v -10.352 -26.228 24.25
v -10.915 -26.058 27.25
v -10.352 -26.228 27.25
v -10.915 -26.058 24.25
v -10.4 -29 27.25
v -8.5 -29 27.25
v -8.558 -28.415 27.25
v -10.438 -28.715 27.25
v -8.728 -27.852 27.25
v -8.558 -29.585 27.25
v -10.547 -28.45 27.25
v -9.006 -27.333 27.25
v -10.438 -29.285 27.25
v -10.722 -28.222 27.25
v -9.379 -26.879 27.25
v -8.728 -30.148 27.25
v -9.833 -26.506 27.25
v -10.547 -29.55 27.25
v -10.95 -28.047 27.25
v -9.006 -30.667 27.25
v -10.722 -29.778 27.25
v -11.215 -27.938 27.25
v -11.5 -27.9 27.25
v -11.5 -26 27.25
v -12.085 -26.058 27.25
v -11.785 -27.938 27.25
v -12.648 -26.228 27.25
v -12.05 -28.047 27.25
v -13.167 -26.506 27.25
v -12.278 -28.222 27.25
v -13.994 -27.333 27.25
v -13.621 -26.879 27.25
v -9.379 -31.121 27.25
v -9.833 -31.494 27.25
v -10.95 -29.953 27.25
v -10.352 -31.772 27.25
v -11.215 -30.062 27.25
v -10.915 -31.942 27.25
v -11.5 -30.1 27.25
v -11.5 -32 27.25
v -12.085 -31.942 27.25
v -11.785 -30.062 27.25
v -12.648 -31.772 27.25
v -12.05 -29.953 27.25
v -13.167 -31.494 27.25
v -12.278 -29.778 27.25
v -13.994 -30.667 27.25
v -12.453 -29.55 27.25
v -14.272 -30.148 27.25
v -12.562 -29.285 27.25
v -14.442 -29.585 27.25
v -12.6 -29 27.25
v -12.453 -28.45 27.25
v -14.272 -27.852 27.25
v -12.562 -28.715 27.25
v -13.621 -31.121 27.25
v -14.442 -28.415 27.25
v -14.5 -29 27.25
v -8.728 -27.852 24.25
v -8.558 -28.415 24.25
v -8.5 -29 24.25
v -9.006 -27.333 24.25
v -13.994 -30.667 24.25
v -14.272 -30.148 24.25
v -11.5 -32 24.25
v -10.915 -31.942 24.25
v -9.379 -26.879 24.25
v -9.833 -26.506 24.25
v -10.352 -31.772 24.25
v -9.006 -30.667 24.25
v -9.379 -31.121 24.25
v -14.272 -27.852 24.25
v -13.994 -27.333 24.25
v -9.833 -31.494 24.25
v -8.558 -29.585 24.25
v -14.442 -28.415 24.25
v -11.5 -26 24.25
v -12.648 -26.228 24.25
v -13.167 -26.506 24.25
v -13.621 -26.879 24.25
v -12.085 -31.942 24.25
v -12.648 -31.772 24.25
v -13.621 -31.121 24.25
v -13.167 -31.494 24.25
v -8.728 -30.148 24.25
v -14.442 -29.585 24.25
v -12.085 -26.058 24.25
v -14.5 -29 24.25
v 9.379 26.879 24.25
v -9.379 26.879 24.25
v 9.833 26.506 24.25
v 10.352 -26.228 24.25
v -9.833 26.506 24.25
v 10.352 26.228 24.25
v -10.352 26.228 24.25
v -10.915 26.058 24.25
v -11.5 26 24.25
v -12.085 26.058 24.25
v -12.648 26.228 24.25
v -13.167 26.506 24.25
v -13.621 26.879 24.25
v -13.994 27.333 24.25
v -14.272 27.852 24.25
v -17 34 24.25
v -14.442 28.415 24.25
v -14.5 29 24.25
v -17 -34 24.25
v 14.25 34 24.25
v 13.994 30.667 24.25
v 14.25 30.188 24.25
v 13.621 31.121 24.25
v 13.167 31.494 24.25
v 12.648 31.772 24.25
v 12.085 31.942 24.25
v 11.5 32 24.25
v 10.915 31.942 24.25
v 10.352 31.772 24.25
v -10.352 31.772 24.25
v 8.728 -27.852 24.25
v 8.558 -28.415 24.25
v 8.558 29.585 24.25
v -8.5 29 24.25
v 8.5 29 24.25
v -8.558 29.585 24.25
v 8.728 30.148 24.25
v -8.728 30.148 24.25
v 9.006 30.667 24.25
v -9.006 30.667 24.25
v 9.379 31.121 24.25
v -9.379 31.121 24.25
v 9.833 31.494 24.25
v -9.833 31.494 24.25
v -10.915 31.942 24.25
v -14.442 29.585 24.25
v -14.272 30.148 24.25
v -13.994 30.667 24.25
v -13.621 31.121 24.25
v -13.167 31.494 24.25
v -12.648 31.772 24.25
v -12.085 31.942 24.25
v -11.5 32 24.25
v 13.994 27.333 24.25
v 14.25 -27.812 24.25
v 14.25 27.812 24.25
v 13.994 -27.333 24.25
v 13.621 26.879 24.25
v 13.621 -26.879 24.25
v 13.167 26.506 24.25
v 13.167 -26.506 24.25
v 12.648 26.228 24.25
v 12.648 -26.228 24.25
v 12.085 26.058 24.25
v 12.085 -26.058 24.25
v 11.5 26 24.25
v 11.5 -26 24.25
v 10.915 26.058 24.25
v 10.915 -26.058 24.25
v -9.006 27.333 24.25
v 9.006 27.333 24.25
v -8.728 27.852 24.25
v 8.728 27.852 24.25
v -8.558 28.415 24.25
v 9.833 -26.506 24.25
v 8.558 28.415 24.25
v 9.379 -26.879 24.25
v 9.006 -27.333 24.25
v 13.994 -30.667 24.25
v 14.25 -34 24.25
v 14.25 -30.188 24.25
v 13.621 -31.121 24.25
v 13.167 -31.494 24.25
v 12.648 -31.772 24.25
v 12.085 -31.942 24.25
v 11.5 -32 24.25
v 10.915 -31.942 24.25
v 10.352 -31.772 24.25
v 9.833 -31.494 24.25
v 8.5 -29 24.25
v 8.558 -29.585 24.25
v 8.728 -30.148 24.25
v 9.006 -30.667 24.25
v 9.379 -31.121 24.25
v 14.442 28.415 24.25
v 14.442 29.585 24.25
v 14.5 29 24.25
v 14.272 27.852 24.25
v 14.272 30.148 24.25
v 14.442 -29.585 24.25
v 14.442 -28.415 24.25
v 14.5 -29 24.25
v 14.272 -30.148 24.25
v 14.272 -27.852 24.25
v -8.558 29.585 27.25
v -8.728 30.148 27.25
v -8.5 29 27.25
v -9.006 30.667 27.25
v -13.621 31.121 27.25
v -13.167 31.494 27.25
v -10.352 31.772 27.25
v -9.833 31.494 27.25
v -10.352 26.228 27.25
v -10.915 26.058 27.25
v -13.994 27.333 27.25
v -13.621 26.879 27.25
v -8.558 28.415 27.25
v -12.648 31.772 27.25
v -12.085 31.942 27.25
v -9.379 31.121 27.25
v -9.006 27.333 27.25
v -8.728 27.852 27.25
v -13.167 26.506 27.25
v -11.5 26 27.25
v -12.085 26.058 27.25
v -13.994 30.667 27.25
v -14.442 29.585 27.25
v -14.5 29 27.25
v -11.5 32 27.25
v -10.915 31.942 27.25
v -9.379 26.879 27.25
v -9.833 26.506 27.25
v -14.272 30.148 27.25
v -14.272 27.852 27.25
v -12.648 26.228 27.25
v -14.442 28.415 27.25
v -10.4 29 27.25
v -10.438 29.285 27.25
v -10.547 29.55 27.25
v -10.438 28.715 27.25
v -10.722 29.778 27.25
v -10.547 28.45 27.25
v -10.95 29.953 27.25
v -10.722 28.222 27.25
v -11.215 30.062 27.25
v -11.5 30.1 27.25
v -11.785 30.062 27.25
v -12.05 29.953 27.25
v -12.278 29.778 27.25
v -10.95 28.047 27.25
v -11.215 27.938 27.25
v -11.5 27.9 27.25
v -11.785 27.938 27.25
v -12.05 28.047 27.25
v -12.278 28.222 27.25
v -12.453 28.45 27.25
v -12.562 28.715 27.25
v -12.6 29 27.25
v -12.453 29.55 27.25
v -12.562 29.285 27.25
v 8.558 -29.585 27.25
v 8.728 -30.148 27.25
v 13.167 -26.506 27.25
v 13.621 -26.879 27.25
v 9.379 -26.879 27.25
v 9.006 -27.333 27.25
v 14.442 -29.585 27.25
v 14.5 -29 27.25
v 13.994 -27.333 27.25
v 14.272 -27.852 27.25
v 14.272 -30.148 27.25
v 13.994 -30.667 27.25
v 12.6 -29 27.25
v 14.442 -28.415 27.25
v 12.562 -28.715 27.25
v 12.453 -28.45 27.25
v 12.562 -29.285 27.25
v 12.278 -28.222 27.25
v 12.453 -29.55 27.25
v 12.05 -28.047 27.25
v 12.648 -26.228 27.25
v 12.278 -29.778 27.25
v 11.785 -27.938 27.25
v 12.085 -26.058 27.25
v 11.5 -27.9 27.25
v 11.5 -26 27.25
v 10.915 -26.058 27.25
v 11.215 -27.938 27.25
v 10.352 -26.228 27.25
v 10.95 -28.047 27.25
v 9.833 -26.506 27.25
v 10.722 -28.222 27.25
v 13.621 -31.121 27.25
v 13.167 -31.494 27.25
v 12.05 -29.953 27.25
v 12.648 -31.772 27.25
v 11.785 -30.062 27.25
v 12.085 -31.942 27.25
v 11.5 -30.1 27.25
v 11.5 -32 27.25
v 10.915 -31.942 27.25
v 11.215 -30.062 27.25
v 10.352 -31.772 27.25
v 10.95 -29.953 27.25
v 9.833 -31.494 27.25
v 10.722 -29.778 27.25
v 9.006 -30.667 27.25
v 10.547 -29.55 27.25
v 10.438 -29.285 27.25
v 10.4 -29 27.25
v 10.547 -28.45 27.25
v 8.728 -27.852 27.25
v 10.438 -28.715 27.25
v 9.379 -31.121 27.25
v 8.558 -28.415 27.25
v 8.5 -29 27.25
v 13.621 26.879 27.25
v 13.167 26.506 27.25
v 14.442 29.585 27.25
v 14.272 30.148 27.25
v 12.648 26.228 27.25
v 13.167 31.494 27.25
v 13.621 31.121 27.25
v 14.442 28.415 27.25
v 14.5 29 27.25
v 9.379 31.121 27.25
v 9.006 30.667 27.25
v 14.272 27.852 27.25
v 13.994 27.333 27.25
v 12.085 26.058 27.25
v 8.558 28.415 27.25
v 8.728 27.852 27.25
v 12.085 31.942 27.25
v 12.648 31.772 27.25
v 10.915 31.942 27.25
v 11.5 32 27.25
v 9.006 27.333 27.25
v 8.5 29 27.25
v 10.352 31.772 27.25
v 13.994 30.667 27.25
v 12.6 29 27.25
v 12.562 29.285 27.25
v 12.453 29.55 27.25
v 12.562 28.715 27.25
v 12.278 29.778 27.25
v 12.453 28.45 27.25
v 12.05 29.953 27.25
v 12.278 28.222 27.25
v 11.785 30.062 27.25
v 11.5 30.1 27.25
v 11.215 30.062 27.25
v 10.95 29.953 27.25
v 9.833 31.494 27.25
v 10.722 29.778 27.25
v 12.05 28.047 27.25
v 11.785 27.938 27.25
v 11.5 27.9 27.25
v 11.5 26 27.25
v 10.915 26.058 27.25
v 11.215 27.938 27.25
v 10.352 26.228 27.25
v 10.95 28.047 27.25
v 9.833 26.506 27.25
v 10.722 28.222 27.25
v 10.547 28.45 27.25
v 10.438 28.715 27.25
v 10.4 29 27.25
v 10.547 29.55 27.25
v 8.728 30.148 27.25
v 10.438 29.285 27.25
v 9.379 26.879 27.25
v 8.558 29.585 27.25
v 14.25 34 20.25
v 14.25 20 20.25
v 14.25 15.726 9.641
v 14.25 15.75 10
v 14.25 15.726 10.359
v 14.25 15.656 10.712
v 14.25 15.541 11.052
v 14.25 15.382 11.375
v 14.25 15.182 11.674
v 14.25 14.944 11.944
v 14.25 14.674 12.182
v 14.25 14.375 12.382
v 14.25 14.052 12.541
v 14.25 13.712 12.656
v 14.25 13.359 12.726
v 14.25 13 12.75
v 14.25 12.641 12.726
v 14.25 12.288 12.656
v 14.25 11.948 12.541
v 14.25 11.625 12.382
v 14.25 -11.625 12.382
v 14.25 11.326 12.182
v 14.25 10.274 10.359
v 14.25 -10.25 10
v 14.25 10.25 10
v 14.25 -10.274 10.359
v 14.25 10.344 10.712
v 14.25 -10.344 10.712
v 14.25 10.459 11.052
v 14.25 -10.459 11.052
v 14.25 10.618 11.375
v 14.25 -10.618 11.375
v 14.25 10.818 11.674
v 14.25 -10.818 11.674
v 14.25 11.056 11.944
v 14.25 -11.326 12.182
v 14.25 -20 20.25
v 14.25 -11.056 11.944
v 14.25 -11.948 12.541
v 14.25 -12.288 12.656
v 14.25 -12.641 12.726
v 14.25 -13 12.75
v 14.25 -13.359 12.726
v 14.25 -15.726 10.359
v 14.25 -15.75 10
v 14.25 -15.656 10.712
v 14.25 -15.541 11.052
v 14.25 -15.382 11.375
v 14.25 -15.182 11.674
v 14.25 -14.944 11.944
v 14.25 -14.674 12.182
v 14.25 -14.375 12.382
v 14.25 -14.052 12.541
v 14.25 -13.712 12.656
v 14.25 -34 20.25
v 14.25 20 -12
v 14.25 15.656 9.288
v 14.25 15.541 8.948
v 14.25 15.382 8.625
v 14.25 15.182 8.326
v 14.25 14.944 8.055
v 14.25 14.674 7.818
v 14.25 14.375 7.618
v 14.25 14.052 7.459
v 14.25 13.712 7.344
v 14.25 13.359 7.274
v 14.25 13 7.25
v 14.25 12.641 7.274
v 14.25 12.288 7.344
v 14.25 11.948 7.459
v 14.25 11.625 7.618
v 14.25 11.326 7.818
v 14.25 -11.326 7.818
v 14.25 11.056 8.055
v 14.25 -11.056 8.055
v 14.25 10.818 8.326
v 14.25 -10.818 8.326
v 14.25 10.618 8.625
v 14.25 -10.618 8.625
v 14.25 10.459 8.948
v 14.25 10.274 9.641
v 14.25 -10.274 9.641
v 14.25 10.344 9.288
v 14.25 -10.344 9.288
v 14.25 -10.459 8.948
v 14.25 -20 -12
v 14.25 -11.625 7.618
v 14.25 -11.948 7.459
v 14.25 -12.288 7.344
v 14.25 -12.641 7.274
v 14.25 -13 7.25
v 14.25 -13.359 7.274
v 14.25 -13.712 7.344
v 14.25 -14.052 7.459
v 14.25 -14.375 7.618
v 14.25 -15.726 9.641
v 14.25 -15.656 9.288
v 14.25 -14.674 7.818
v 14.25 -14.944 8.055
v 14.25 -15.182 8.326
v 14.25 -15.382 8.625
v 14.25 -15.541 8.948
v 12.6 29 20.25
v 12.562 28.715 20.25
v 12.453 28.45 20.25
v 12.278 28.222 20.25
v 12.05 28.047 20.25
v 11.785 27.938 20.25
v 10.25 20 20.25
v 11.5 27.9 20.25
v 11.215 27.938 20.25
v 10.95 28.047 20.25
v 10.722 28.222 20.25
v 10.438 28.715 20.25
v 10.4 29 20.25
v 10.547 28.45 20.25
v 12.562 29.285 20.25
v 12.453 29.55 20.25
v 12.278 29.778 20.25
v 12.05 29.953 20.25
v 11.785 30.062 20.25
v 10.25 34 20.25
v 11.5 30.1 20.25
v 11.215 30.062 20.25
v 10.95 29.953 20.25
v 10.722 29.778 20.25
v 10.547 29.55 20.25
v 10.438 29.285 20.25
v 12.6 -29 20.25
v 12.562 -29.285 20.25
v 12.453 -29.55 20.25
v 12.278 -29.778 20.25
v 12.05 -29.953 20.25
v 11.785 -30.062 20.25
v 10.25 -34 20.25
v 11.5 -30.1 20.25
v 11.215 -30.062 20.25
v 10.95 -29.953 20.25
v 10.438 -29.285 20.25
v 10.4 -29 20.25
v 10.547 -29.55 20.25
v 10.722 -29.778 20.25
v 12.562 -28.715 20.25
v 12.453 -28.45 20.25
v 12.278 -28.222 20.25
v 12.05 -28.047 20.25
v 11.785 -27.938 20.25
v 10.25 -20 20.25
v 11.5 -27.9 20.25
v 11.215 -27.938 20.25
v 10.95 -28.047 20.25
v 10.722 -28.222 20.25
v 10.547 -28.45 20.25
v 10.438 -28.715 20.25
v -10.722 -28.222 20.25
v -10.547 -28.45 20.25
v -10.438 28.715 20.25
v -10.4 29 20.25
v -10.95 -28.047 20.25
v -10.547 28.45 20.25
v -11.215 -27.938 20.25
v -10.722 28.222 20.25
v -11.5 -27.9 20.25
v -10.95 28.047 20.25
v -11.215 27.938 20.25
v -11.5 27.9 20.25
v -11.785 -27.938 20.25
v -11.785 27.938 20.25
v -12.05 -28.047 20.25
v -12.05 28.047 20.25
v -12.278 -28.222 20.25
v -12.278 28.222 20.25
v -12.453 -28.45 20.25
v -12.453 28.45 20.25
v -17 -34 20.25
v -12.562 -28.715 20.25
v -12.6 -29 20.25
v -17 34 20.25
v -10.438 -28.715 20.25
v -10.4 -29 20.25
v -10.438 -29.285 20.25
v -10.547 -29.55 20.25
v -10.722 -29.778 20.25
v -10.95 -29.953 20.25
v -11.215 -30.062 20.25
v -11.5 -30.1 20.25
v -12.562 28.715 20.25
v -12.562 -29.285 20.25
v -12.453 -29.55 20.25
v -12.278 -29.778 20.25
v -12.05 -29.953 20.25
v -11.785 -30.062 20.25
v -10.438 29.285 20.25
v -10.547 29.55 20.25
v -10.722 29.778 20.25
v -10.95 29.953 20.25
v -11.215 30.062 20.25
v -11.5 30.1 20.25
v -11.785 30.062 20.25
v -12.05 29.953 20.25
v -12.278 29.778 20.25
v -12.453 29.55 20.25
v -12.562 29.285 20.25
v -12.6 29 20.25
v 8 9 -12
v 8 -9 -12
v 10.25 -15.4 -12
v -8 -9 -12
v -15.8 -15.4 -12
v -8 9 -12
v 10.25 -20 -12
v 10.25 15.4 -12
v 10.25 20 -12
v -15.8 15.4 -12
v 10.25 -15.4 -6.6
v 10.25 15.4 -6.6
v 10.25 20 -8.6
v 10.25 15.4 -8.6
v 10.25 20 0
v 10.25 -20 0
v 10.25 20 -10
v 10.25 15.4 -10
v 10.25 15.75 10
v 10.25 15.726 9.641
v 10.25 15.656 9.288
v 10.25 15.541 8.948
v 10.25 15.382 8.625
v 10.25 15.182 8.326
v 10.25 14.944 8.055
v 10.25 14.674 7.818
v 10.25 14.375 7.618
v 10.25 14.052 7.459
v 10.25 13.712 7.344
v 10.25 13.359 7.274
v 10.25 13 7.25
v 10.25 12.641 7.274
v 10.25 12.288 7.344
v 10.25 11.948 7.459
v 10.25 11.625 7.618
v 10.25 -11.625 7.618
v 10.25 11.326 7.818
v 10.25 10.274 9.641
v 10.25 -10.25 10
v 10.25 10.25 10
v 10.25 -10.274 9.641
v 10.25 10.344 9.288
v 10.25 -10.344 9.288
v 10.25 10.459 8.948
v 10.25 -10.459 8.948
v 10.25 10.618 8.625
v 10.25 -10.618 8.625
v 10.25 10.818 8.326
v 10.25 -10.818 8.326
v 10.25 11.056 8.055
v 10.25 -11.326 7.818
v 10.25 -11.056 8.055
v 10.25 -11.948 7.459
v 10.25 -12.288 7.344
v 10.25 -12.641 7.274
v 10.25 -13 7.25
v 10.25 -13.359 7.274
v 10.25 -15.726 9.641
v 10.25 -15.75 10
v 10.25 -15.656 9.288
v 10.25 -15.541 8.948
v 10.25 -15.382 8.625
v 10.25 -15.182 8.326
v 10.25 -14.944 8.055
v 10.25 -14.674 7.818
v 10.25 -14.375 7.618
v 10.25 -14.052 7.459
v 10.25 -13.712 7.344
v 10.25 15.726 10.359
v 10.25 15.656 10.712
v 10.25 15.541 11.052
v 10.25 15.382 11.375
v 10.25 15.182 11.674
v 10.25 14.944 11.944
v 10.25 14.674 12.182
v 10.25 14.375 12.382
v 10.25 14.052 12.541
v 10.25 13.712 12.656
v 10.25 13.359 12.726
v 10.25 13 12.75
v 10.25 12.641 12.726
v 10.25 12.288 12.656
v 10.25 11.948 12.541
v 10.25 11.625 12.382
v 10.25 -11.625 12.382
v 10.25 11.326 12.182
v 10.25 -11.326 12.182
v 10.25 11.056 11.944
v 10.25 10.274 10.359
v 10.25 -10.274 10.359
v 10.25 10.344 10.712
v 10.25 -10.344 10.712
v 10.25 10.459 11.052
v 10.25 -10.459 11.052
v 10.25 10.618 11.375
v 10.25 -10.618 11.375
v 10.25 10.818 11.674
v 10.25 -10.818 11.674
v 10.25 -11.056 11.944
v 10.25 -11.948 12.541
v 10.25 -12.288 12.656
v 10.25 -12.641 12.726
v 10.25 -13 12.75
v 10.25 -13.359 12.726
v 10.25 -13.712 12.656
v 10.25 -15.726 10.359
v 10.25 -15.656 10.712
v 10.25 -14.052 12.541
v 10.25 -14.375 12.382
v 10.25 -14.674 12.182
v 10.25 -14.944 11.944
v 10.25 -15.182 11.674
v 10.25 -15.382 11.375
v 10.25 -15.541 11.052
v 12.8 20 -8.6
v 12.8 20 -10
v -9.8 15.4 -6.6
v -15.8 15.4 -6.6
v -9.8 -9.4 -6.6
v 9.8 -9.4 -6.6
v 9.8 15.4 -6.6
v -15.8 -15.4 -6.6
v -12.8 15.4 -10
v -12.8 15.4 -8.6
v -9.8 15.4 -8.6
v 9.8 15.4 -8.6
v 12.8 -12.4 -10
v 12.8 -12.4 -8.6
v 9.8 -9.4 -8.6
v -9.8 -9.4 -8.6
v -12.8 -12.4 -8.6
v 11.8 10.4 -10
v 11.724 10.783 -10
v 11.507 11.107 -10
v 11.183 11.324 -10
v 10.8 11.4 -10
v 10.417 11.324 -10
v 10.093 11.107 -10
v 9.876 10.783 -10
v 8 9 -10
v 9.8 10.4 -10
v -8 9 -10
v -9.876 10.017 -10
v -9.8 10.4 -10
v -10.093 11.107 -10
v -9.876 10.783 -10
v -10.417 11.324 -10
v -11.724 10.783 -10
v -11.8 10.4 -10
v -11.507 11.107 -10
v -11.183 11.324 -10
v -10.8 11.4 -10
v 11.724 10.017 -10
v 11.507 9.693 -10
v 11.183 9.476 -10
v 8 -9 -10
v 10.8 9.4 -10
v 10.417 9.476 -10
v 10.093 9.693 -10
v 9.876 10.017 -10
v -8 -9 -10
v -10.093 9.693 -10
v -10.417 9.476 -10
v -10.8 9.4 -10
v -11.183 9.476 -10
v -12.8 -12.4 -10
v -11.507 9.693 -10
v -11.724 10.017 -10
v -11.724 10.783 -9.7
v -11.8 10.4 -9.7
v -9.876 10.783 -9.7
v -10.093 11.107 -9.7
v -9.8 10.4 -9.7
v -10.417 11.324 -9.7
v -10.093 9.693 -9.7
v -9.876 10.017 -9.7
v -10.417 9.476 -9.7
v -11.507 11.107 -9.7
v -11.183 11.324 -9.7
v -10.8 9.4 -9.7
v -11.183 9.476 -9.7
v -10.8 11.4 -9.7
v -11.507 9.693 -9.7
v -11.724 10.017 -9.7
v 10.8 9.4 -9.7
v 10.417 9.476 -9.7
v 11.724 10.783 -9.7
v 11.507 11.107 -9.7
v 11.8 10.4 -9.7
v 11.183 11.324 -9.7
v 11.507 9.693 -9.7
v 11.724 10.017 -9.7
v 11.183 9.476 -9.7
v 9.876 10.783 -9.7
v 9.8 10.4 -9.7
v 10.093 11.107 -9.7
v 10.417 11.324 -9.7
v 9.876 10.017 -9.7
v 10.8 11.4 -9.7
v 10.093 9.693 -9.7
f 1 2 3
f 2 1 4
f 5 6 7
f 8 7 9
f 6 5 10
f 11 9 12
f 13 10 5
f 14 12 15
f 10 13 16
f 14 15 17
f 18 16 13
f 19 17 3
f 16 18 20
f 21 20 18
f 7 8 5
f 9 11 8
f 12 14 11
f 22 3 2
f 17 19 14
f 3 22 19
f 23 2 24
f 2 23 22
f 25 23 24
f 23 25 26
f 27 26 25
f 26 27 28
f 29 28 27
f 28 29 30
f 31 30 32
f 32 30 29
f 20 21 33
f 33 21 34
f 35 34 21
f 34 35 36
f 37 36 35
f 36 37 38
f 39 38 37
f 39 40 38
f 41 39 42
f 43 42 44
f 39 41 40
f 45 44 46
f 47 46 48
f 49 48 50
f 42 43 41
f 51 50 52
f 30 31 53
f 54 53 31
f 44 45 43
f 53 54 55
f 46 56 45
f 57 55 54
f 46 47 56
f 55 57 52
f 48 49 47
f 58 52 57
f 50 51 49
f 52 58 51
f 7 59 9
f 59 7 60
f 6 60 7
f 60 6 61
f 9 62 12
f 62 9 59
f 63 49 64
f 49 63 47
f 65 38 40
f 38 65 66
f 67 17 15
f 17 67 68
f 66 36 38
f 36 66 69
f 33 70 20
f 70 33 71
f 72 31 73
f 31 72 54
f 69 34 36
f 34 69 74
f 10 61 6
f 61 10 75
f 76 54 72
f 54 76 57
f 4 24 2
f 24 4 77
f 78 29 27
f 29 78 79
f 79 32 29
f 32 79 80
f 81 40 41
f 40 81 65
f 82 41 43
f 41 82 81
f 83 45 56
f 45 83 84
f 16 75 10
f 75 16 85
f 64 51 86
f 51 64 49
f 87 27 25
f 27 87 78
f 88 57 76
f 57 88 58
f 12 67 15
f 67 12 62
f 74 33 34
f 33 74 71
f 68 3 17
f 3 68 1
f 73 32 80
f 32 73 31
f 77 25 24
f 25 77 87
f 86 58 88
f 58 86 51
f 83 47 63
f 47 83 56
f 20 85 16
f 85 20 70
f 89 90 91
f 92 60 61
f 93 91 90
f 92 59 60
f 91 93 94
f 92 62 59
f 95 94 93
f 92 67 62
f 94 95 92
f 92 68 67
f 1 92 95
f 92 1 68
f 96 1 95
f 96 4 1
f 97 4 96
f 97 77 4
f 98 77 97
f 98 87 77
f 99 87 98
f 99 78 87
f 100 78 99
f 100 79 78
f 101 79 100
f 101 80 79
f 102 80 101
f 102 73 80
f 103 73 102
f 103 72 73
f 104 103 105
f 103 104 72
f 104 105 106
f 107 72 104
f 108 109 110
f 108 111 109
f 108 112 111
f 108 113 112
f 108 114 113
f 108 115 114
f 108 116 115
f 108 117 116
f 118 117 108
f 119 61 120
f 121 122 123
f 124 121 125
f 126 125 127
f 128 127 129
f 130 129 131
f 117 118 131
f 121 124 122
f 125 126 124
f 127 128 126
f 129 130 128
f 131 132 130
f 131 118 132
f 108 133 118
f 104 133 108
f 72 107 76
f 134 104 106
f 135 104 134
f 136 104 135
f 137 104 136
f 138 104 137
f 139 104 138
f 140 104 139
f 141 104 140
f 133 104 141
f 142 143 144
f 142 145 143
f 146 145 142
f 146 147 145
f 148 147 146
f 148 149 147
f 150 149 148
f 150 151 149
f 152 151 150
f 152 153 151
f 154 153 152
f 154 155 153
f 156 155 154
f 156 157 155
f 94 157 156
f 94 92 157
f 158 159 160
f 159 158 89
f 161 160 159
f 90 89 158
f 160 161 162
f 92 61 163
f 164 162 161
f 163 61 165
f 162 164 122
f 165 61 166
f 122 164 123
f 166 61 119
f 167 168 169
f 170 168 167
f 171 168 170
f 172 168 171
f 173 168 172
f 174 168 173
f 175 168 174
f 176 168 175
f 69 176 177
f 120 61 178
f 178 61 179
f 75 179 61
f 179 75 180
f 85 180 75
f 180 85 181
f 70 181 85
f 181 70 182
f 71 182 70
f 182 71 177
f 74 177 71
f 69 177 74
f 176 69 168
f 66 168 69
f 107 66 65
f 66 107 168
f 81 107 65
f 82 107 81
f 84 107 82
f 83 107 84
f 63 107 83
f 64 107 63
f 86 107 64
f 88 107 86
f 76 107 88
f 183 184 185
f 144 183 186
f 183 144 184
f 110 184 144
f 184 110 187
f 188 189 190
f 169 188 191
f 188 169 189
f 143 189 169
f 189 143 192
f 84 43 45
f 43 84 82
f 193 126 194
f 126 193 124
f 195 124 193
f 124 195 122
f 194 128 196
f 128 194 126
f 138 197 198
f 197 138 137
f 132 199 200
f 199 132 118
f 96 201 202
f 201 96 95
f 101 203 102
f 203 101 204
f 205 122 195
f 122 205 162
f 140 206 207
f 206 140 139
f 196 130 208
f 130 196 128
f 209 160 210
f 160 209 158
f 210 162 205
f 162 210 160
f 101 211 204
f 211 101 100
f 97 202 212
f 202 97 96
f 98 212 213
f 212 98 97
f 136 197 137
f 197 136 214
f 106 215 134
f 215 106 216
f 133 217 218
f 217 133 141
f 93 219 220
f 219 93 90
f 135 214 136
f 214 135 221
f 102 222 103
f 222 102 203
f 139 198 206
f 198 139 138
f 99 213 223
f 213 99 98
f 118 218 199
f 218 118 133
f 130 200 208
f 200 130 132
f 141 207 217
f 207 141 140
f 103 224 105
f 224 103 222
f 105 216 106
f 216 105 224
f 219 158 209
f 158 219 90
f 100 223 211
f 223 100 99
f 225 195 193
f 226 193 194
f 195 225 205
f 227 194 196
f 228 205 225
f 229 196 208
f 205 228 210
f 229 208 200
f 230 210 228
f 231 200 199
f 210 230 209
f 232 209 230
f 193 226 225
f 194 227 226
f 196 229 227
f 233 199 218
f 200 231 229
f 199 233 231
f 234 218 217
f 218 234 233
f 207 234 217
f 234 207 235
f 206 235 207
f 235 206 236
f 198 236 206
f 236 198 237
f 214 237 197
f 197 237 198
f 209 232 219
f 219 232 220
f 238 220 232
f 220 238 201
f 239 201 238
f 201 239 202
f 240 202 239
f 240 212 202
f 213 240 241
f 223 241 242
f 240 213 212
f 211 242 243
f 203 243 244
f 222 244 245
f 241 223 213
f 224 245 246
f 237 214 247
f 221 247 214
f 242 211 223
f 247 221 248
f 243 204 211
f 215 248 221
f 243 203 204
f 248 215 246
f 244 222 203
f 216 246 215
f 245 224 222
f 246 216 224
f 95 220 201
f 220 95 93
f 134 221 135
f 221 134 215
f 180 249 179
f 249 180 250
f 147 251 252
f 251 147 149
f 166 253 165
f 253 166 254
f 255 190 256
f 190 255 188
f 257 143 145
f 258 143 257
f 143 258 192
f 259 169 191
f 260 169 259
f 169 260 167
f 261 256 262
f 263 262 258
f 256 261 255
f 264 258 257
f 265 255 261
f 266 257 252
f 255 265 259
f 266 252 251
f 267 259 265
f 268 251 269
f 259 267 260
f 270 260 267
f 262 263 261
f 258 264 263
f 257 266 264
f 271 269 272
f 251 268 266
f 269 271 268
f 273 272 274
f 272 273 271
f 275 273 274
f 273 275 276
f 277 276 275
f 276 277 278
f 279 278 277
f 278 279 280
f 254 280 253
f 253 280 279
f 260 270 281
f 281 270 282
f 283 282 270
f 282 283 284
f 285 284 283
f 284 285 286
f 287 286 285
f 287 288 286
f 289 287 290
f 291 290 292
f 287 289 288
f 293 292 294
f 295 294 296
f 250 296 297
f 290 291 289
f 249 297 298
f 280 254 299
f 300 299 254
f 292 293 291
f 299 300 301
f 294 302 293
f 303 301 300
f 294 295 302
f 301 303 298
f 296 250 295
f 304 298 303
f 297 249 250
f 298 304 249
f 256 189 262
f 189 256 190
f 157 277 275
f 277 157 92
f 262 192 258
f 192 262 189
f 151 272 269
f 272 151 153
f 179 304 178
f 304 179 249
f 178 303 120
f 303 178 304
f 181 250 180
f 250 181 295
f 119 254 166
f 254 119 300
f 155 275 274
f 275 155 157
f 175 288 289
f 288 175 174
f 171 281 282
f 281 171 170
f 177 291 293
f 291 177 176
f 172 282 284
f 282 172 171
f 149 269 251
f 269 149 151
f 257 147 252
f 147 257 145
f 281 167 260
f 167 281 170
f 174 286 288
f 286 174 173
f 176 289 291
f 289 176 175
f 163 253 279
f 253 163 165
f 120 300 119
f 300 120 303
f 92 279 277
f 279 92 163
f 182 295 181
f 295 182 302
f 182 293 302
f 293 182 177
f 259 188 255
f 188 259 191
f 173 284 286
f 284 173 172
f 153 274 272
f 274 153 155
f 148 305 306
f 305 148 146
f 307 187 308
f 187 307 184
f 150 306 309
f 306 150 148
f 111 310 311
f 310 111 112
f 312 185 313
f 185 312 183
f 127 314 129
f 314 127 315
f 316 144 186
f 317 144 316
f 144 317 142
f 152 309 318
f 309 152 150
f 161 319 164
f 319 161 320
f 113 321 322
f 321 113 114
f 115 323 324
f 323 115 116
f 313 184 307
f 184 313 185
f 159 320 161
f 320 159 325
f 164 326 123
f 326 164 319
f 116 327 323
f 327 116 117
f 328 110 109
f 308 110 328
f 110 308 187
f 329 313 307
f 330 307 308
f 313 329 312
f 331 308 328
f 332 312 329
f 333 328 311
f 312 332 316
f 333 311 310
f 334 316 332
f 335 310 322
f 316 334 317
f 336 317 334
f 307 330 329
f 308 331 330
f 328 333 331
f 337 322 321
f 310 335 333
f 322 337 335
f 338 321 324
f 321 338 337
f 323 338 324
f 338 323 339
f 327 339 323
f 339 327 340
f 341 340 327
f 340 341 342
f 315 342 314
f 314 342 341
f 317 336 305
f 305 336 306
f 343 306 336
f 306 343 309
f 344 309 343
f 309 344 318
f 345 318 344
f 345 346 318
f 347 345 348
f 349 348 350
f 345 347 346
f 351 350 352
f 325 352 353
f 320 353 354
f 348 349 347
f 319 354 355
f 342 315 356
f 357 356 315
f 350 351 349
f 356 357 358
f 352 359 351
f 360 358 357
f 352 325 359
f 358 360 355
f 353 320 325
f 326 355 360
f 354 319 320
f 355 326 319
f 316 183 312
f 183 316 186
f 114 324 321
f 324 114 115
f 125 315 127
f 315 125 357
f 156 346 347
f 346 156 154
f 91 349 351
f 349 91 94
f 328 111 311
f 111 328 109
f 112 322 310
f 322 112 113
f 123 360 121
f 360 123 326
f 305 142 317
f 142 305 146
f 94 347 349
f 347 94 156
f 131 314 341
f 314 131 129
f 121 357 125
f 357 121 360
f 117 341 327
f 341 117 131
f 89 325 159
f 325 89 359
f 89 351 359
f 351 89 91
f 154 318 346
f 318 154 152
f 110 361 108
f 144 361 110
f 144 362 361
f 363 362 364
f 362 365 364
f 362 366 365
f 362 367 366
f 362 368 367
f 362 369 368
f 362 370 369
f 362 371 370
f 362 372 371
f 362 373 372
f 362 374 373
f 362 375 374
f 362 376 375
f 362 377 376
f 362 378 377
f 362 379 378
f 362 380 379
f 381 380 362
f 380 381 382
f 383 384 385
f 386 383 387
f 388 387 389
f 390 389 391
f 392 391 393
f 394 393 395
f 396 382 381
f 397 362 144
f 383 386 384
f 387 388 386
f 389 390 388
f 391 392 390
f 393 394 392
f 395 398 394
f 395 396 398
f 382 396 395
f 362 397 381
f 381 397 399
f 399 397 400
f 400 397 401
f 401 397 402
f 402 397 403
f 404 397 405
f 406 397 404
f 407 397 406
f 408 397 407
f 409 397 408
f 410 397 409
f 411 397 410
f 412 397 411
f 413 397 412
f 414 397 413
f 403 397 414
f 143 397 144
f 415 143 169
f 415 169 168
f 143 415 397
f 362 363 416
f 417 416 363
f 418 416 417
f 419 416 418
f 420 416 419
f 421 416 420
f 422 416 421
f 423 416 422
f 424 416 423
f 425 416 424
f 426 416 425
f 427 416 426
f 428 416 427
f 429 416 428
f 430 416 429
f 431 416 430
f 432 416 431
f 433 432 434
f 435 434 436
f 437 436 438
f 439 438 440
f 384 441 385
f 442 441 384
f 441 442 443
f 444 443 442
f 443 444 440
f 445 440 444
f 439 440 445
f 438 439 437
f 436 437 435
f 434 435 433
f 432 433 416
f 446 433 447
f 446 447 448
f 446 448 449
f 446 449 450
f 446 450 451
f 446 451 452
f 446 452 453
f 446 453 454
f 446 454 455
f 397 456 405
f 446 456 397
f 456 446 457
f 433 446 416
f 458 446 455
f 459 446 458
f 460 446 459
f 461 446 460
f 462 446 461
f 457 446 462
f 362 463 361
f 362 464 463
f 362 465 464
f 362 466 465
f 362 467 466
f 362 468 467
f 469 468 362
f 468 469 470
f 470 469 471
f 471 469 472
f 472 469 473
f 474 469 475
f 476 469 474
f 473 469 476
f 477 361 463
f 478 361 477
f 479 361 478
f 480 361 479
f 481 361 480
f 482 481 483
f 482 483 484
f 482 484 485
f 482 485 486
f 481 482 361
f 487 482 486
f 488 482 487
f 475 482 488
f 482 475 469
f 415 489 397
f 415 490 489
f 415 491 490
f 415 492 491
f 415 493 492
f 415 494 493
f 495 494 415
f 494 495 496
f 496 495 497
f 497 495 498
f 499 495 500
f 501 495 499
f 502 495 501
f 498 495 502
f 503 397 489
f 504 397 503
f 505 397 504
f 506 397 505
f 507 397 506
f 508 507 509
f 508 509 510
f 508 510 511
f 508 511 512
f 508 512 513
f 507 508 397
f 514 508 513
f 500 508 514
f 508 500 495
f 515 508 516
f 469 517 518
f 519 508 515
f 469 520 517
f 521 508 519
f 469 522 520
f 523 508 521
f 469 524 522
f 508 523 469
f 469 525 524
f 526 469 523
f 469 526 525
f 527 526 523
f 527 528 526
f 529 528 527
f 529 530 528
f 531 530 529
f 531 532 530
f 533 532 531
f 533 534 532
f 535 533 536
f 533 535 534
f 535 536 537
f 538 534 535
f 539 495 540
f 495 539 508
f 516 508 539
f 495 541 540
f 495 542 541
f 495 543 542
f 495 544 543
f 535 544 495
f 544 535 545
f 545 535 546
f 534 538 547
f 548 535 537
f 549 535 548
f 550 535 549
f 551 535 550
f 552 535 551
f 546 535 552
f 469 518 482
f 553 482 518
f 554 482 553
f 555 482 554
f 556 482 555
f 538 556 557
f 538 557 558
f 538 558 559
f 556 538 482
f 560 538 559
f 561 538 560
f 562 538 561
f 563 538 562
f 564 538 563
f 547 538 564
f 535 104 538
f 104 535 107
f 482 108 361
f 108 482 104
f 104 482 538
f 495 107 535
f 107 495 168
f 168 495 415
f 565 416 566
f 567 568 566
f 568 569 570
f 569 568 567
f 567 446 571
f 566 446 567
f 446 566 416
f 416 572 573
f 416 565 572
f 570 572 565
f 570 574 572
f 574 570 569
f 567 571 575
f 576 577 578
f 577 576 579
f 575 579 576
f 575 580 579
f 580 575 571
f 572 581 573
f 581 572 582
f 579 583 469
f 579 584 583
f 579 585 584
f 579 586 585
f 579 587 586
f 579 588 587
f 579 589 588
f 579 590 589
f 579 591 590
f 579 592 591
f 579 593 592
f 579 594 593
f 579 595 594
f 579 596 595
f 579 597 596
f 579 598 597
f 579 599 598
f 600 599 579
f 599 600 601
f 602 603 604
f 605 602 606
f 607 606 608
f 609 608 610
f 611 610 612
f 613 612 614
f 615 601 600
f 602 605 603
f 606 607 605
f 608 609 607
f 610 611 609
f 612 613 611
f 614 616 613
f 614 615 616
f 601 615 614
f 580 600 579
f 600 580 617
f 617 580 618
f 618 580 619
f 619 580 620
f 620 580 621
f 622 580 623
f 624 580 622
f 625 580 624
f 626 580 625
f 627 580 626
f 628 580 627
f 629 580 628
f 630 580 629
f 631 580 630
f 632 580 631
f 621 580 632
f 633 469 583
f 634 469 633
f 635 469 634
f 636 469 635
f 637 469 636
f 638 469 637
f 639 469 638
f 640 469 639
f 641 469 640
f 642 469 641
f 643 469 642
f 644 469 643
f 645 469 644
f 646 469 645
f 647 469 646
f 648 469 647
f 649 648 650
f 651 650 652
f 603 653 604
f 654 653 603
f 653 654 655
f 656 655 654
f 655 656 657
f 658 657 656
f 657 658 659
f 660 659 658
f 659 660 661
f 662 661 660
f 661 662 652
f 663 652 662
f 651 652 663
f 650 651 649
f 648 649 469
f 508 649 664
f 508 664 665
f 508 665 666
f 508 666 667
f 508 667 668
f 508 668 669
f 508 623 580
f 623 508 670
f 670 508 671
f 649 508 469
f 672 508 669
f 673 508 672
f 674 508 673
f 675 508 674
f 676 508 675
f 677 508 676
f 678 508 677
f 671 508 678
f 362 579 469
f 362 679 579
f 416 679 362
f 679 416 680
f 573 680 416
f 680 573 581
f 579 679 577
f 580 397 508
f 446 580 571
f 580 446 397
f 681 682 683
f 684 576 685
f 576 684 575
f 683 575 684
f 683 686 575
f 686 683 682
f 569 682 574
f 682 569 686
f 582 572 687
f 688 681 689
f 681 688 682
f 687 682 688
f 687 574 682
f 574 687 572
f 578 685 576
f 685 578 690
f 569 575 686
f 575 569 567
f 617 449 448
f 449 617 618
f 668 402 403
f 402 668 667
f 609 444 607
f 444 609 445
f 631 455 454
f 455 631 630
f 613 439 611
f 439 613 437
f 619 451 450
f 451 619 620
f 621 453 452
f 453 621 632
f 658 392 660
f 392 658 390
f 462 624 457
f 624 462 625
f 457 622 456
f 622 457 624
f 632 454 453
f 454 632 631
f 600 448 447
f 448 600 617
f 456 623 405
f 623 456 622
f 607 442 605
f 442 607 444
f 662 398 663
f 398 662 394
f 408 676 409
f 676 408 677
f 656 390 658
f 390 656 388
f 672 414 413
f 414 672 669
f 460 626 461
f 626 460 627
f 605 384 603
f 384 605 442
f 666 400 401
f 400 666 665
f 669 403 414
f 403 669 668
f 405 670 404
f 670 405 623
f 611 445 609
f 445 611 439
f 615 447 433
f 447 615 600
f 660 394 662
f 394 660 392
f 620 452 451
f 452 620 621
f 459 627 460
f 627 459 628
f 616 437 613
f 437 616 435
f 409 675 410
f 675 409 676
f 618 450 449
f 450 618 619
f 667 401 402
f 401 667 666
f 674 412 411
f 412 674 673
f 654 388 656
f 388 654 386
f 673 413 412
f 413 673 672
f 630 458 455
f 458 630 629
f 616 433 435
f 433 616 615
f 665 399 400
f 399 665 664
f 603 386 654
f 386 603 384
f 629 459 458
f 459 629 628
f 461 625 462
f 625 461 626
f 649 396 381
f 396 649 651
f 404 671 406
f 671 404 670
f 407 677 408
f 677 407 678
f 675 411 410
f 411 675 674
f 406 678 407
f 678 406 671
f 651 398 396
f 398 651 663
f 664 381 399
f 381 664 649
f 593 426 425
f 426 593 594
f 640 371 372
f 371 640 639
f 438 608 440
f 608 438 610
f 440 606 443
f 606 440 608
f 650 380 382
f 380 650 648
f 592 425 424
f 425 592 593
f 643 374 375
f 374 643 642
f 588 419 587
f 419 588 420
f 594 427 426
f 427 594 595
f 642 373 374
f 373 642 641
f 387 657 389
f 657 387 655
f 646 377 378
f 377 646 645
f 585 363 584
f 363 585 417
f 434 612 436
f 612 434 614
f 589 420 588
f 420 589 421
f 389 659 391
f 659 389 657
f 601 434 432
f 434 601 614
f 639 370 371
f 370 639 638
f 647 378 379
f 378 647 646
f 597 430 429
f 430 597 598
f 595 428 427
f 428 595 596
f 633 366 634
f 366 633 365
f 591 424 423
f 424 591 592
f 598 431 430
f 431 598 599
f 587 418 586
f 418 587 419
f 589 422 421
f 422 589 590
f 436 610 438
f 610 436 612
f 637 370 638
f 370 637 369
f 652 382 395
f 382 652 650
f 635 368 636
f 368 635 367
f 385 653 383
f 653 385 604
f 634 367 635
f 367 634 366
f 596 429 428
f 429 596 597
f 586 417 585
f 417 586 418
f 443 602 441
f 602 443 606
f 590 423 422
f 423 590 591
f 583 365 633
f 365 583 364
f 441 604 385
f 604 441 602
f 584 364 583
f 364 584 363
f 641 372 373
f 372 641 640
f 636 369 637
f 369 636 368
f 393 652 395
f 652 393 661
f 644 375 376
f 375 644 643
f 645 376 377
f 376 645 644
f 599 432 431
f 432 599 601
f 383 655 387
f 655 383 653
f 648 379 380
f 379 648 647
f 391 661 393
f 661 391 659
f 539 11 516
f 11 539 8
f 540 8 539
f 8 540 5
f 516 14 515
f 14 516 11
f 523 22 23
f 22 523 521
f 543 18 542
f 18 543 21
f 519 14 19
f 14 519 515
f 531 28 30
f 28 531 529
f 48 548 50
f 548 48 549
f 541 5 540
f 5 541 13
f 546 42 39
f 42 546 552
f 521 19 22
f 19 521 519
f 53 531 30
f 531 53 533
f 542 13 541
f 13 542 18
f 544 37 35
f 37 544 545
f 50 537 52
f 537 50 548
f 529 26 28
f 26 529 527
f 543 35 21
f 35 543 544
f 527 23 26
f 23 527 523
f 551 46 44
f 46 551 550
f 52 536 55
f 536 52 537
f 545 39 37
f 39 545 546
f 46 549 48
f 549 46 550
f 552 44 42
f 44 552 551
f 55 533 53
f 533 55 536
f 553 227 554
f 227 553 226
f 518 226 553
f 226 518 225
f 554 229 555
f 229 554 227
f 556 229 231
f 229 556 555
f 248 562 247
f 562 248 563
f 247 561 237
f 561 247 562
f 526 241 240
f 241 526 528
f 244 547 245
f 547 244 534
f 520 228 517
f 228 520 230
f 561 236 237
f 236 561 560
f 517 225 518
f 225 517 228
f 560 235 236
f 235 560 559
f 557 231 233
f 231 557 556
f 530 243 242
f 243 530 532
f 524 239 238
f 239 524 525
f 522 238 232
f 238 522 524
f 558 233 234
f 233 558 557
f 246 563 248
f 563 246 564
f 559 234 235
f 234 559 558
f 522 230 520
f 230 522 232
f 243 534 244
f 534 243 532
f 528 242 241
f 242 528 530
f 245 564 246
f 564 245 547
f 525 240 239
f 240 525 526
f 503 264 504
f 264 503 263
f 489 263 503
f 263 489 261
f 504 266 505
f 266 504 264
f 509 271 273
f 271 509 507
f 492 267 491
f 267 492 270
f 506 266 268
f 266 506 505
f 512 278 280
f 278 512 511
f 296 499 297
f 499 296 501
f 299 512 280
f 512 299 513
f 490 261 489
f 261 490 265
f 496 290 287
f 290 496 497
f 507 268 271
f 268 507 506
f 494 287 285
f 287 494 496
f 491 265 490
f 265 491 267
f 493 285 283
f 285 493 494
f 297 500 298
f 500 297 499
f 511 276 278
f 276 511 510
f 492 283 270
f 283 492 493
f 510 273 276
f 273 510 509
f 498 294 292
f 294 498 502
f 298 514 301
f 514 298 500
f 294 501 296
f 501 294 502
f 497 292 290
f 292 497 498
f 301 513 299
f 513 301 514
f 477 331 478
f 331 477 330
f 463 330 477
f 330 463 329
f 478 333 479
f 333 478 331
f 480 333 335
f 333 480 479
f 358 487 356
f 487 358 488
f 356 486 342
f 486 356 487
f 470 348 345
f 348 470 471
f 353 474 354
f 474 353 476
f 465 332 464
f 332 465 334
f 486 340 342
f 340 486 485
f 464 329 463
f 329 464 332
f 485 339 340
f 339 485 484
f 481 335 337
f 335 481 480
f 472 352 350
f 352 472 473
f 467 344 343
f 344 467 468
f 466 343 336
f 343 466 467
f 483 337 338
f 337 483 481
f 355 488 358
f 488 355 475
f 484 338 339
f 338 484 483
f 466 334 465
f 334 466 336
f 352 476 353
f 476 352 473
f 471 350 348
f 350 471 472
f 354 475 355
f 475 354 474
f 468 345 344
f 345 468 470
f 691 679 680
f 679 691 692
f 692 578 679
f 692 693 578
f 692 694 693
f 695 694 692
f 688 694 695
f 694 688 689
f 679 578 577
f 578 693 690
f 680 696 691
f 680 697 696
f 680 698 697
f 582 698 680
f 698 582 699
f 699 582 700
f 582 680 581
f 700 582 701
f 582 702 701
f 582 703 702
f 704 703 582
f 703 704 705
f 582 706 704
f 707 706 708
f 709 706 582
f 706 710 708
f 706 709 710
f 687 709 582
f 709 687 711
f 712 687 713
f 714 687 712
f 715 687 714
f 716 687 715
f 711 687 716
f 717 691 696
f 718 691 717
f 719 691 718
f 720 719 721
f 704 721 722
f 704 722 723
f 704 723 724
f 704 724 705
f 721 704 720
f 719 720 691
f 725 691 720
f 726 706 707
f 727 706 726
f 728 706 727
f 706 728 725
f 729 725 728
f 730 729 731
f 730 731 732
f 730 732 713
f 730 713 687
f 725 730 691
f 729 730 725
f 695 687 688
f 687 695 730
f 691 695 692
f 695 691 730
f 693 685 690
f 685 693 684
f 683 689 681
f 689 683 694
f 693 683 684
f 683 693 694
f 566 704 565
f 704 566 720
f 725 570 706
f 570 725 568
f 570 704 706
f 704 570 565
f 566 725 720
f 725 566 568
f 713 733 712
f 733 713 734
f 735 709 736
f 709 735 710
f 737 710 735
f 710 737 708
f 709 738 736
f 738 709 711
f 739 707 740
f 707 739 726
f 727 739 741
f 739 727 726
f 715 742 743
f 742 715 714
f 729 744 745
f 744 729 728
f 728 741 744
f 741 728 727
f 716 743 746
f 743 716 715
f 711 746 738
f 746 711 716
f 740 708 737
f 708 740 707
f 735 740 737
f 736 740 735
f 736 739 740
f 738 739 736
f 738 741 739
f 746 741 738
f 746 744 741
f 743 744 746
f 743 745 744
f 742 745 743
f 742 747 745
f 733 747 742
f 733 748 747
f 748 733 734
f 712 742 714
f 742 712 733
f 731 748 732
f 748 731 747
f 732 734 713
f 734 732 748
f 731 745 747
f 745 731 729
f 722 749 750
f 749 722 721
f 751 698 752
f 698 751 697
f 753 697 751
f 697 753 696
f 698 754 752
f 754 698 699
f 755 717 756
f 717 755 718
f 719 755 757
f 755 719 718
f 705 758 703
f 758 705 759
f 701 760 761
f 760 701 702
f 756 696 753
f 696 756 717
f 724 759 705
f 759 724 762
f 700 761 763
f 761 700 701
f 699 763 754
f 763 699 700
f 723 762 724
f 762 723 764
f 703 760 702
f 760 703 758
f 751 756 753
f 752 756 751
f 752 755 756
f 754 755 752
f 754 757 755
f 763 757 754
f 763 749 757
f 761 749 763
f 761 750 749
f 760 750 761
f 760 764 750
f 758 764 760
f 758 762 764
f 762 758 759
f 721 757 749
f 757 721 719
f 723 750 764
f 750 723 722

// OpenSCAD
// file: common-2020.scad
// Shared socket geometry for the scanner stand brackets.
// A socket holds the end of a 2020 profile running down -Z from its closed end at z=0.

$fn = 48;

profile     = 20;
clearance   = 0.25;   // per side; raise if the profile will not slide in
wall        = 4;
depth       = 30;     // how far a profile slides into a socket
screw_d     = 5.5;
screw_depth = [9, 22];

inner = profile + 2 * clearance;
outer = inner + 2 * wall;
far   = 400;          // long enough to clear anything a hull adds in a profile's path

module socket_body() translate([-outer / 2, -outer / 2, -depth]) cube([outer, outer, depth + wall]);

module socket_void() translate([-inner / 2, -inner / 2, -far]) cube([inner, inner, far]);

// M5 holes through the front and back walls, into T-nuts in the profile's slots.
module socket_screws(depths = screw_depth)
    for (d = depths)
        translate([0, 0, -d]) rotate([90, 0, 0]) cylinder(d = screw_d, h = outer + 2, center = true);
// main file
// One-piece mount for the Pi and the camera on the cross bar of the triangle stand.
// A C that wraps the bar: the Pi Zero screws onto the plate on top, the camera board
// slides into the slot underneath, looking down through the window, on the bar's
// centre line. The open side leaves room for the ribbon cable to run from the camera
// up to the Pi, and lets the mount come off the bar without taking the frame apart.
//
// The boards are held directly, so the cases from thingiverse:2615180 are not needed.
// Board sizes are the published ones for a Pi Zero and a Pi camera module; check them
// against yours, and change pi_holes / cam_board / board_t if they differ.
//
// Hardware: 2x M5x10 button head + 2x M5 T-nuts (slot 6) into the bar's side slot,
// 4x M2.5x6 self-tapping into the posts for the Pi.
// Print standing on its back, the face with the two M5 holes; PETG, 4+ walls,
// 40% infill, no supports.

include <common-2020.scad>

// Bar runs along Y with its bottom face at z=0. The mount grips its +X side.
back      = inner / 2 + wall;      // outer face of the part against the bar's side
top_z     = profile + clearance;   // underside of the plate over the bar

// Pi Zero: 65 x 30 board, holes 58 x 23 apart, M2.5.
pi_holes  = [23, 58];
post_h    = 3;
post_d    = 6;
post_hole = 2.2;
plate     = [[-17, back], [-34, 34]];

// Camera board: 25 x 24, about 1 mm thick, lens looking down through the window.
cam_board = [25.6, 24.8];   // with clearance; it slides in along +Y
board_t   = 1.4;
window    = [16, 18];
tray_z    = -12;            // underside of the tray
floor_t   = 2;
lip       = 3;              // how far the lips reach in over the board's edges
bump      = 0.3;            // stops the board sliding back out

web_y     = 20;
bar_screws = [-13, 13];

slot_z    = tray_z + floor_t;

module plate() translate([plate[0][0], plate[1][0], top_z])
    cube([plate[0][1] - plate[0][0], plate[1][1] - plate[1][0], wall]);

module posts() for (x = [-1, 1], y = [-1, 1])
    translate([x * pi_holes[0] / 2, y * pi_holes[1] / 2, top_z + wall])
        cylinder(d = post_d, h = post_h, $fn = 32);

module web() translate([inner / 2, -web_y, tray_z]) cube([wall, 2 * web_y, top_z + wall - tray_z]);

module tray() translate([-cam_board[0] / 2 - lip, -cam_board[1] / 2 - lip, tray_z])
    cube([cam_board[0] / 2 + lip + back, cam_board[1] + 2 * lip, floor_t + board_t + wall / 2]);

difference() {
    union() { plate(); posts(); web(); tray(); }

    // the bar itself, and the slot the camera board slides into
    translate([-far, -far, 0]) cube([far + inner / 2, 2 * far, top_z]);
    translate([-cam_board[0] / 2, -cam_board[1] / 2, slot_z]) cube([cam_board[0], far, board_t]);
    // over the board: open, apart from a lip along each side
    translate([-cam_board[0] / 2 + lip, -cam_board[1] / 2 + lip, slot_z + board_t])
        cube([cam_board[0] - 2 * lip, far, wall]);
    // what the camera looks through
    translate([-window[0] / 2, -window[1] / 2, tray_z - 1]) cube([window[0], window[1], floor_t + 2]);

    for (y = bar_screws) translate([inner / 2 - 1, y, profile / 2]) rotate([0, 90, 0]) cylinder(d = screw_d, h = wall + 2);
    for (x = [-1, 1], y = [-1, 1])
        translate([x * pi_holes[0] / 2, y * pi_holes[1] / 2, top_z - 1])
            cylinder(d = post_hole, h = wall + post_h + 2, $fn = 24);
}

// A bump under each edge of the board, near the way in, to keep it from sliding out.
for (x = [-1, 1])
    translate([x * (cam_board[0] / 2 - 2), cam_board[1] / 2 - 2, slot_z])
        cylinder(d = 2, h = bump, $fn = 16);
